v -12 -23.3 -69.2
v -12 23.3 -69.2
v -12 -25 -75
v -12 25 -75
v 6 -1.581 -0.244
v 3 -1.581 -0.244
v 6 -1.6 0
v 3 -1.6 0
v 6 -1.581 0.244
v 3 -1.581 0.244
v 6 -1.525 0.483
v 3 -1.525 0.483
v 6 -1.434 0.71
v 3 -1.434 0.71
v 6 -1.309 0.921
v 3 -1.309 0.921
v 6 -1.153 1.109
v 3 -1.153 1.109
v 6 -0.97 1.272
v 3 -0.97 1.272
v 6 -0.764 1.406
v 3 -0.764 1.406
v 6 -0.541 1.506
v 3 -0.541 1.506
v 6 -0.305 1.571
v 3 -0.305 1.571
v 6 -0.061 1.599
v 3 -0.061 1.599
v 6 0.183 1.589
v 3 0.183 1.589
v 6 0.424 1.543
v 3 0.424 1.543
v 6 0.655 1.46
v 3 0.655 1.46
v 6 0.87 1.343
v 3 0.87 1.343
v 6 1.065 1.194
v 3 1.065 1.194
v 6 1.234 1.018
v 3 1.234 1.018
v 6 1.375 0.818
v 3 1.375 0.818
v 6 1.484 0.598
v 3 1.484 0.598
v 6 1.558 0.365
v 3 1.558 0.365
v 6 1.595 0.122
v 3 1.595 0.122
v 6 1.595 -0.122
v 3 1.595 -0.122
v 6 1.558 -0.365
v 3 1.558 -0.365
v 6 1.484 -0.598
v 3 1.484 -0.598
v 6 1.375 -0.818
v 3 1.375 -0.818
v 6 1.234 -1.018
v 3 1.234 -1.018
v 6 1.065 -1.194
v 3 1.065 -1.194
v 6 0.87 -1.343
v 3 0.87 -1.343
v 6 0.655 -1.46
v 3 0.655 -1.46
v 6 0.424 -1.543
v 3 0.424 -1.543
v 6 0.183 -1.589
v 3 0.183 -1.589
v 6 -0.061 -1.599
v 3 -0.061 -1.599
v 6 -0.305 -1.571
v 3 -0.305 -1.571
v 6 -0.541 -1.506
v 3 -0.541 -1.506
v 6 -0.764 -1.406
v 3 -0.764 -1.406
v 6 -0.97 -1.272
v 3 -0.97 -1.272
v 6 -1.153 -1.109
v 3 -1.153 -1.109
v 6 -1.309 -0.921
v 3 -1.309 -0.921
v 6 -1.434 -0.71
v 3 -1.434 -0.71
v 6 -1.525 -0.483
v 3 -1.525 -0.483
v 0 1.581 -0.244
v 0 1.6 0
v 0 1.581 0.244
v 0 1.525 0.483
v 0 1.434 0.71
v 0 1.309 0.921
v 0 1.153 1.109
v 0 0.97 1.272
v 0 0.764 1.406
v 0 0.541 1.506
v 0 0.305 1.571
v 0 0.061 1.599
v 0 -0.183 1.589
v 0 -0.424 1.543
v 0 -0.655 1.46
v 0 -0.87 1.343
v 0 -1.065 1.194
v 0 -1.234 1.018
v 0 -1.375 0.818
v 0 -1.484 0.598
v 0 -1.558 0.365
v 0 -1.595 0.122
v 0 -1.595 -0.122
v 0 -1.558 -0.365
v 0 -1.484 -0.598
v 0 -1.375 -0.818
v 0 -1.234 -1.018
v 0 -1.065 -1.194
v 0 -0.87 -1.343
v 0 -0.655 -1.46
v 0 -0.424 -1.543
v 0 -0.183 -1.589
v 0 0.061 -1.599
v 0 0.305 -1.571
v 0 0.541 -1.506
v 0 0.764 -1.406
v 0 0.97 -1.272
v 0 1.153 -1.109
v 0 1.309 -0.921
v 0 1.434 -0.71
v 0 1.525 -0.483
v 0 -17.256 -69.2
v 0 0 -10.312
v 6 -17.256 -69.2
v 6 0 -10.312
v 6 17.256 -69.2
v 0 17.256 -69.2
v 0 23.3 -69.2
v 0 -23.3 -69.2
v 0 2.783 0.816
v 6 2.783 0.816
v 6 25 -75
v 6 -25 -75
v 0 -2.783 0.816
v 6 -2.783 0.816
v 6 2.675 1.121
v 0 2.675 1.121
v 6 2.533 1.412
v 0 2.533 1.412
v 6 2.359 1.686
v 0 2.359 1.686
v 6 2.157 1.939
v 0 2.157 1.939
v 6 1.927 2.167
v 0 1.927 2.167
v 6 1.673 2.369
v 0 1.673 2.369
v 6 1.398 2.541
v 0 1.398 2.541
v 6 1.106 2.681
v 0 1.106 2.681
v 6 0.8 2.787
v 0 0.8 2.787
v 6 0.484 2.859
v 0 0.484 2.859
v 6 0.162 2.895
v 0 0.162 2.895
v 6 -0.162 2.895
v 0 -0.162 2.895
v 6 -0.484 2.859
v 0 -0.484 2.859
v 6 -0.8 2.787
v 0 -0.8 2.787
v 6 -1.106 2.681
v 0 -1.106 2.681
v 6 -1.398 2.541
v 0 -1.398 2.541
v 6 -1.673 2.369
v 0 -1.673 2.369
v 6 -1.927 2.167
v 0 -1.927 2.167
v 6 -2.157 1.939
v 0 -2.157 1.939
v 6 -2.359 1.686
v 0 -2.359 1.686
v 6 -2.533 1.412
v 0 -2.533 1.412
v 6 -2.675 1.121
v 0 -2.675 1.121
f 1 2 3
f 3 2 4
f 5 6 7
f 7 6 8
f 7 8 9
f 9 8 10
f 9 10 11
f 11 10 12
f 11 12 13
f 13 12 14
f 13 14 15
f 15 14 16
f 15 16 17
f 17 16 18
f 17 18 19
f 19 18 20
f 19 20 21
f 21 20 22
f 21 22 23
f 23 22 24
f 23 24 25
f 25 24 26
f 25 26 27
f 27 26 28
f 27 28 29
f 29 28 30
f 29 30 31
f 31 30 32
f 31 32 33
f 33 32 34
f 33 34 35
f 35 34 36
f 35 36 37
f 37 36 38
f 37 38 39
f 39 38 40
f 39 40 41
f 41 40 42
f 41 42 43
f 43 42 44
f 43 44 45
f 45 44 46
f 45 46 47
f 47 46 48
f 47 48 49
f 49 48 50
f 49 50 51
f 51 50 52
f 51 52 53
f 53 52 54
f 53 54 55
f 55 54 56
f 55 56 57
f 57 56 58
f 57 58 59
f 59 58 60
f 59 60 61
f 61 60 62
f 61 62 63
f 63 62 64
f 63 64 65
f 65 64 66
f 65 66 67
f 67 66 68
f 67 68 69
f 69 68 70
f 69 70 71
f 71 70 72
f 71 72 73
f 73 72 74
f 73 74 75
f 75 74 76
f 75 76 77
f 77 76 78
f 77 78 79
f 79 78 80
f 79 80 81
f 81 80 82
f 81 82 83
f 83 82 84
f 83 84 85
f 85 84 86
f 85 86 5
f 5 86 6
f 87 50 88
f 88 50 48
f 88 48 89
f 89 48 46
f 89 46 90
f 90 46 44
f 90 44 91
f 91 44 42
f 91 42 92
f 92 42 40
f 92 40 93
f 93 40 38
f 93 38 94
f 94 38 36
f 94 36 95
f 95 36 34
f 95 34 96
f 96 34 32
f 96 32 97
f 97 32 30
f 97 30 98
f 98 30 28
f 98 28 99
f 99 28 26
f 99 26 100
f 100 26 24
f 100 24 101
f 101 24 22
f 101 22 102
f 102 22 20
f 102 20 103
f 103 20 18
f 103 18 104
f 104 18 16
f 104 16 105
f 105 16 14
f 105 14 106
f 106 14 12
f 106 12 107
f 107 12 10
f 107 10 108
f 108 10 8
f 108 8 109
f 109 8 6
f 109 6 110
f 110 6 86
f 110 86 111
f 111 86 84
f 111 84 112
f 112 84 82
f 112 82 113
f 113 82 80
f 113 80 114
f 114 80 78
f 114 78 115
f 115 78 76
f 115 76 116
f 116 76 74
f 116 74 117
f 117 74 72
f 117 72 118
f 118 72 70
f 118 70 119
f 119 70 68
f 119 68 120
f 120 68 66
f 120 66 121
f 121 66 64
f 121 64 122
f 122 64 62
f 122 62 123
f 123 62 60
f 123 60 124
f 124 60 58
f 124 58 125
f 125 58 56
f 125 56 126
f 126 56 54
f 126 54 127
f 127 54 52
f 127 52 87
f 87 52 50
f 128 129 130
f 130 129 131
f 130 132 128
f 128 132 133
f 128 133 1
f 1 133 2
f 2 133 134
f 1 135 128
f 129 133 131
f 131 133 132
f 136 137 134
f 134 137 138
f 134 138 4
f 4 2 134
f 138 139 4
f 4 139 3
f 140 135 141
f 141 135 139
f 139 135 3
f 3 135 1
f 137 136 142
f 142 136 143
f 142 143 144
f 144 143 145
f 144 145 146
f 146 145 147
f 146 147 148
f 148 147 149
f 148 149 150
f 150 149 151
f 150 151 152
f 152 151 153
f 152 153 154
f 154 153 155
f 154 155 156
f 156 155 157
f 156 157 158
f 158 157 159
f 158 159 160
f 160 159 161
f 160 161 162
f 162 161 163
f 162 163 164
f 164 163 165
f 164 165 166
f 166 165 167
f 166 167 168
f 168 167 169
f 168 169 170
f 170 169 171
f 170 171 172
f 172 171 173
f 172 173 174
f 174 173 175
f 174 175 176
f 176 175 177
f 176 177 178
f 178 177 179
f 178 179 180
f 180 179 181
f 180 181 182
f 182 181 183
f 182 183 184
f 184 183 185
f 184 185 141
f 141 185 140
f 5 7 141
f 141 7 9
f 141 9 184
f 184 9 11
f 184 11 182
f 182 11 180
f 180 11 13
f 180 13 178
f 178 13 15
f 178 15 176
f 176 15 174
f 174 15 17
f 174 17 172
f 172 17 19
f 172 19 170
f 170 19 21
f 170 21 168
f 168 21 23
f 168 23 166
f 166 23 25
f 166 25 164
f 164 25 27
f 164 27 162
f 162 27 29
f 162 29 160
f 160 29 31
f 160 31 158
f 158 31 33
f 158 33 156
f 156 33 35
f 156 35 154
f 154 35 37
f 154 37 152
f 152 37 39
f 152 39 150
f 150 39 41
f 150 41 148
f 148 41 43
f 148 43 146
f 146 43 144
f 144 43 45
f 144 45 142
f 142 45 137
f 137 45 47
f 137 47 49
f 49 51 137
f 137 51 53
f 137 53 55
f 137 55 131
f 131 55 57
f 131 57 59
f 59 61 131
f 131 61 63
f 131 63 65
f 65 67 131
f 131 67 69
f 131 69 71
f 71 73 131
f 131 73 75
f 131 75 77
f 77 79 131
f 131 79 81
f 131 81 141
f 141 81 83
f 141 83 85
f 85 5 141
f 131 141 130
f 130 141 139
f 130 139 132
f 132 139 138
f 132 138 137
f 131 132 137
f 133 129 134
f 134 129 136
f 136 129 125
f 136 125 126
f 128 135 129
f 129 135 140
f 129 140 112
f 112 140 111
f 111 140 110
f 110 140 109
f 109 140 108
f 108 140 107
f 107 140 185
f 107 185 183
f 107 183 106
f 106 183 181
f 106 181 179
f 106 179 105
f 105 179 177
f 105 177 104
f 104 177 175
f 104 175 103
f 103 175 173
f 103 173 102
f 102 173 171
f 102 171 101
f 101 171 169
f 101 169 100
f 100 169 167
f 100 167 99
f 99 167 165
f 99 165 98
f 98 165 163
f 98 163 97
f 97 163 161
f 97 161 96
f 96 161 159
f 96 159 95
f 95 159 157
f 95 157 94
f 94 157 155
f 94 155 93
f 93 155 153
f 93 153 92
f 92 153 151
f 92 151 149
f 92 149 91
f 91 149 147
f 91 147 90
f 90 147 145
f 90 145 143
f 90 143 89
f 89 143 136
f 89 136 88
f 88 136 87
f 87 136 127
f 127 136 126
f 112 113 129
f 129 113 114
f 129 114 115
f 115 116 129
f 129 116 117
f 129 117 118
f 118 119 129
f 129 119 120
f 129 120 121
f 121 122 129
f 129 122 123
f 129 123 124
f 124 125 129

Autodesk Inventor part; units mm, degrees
ref_plane "YZ Plane" through (0, 0, 0) normal (1, 0, 0) x (0, 1, 0)
ref_plane "XZ Plane" through (0, 0, 0) normal (0, 1, 0) x (-1, 0, 0)
ref_plane "XY Plane" through (0, 0, 0) normal (0, 0, 1) x (1, 0, 0)
sketch "Sketch1" plane through (0, 0, 0) normal (1, 0, 0) x (0, 1, 0)
  circle A0 centre (0, 0) radius 2.9
  line L0 (-2.783, 0.8155) -> (-25, -75)
  line L1 (25, -75) -> (2.783, 0.8155)
  line L2 (52.7128, 0) -> (52.7128, -59)
  line L3 (52.7128, -59) -> (25, -75)
  line L4 (-40.5426, 0) -> (68.2554, 0) projected
  line L5 (17.2565, -69.2) -> (0, -10.3124)
  line L6 (0, -10.3124) -> (-17.2565, -69.2)
  line L7 (-17.2565, -69.2) -> (17.2565, -69.2)
  line L8 (0, -90.58) -> (0, 18.48) projected
  line L9 (25, -75) -> (-25, -75)
  dimension "d0" = 5.8
  dimension "d1" = 32
  dimension "d4" = 30
  dimension "d19" = 5.8
  dimension "d20" = 50
  dimension "d21" = 75
extrude "Extrusion1" add sketch "Sketch1" along normal blind 6 contours L4 L8 A0 | L4 L1 L9 L8 L7 L5 A0 | A0 L8 L4 | A0 L1 L4 | L8 L6 L7 L9 L0 L4 A0 | A0 L4 L8 | L4 A0 L8 | L4 L0 A0
hole "Hole1" at (0, 0, 0) direction (1, 0, 0) diameter 3.2 end through all clearance for "Socket Head Cap Screw" size "M3" standard "Ansi Metric M Profile"
sketch "Sketch3" plane through (0, 0, 0) normal (-1, 0, 0) x (0, 0, 1)
  line L0 (-75, 25) -> (0.8155, 2.783) projected
  line L1 (-75, -25) -> (-75, 25) projected
  line L2 (0.8155, -2.783) -> (-75, -25) projected
  line L3 (-10.3124, 0) -> (-69.2, 17.2565) projected
  line L4 (-69.2, -17.2565) -> (-10.3124, 0) projected
  line L5 (-69.2, 17.2565) -> (-69.2, -17.2565) projected
  line L6 (-10.3124, 0) -> (-69.2, 17.2565) projected
  line L7 (-69.2, 17.2565) -> (-69.2, 23.3004)
  line L8 (-75, 25) -> (0.8155, 2.783) projected
  line L9 (-69.2, 17.2565) -> (-69.2, -17.2565) projected
  line L10 (-69.2, -17.2565) -> (-69.2, -23.3004)
  line L11 (0.8155, -2.783) -> (-75, -25) projected
  arc A0 (0.8155, -2.783) -> (0.8155, 2.783) centre (0, 0) ccw projected
  point P0 (0.1794, -3.245)
  point P1 (0.1794, 3.245)
  point P2 (-69.2, -23.3004)
  point P3 (-69.2, 23.3004)
extrude "Extrusion2" add sketch "Sketch3" along normal blind 12 contours L0 L7 L5 L10 L2 L1
properties part number "ArrayBracketSupport"
